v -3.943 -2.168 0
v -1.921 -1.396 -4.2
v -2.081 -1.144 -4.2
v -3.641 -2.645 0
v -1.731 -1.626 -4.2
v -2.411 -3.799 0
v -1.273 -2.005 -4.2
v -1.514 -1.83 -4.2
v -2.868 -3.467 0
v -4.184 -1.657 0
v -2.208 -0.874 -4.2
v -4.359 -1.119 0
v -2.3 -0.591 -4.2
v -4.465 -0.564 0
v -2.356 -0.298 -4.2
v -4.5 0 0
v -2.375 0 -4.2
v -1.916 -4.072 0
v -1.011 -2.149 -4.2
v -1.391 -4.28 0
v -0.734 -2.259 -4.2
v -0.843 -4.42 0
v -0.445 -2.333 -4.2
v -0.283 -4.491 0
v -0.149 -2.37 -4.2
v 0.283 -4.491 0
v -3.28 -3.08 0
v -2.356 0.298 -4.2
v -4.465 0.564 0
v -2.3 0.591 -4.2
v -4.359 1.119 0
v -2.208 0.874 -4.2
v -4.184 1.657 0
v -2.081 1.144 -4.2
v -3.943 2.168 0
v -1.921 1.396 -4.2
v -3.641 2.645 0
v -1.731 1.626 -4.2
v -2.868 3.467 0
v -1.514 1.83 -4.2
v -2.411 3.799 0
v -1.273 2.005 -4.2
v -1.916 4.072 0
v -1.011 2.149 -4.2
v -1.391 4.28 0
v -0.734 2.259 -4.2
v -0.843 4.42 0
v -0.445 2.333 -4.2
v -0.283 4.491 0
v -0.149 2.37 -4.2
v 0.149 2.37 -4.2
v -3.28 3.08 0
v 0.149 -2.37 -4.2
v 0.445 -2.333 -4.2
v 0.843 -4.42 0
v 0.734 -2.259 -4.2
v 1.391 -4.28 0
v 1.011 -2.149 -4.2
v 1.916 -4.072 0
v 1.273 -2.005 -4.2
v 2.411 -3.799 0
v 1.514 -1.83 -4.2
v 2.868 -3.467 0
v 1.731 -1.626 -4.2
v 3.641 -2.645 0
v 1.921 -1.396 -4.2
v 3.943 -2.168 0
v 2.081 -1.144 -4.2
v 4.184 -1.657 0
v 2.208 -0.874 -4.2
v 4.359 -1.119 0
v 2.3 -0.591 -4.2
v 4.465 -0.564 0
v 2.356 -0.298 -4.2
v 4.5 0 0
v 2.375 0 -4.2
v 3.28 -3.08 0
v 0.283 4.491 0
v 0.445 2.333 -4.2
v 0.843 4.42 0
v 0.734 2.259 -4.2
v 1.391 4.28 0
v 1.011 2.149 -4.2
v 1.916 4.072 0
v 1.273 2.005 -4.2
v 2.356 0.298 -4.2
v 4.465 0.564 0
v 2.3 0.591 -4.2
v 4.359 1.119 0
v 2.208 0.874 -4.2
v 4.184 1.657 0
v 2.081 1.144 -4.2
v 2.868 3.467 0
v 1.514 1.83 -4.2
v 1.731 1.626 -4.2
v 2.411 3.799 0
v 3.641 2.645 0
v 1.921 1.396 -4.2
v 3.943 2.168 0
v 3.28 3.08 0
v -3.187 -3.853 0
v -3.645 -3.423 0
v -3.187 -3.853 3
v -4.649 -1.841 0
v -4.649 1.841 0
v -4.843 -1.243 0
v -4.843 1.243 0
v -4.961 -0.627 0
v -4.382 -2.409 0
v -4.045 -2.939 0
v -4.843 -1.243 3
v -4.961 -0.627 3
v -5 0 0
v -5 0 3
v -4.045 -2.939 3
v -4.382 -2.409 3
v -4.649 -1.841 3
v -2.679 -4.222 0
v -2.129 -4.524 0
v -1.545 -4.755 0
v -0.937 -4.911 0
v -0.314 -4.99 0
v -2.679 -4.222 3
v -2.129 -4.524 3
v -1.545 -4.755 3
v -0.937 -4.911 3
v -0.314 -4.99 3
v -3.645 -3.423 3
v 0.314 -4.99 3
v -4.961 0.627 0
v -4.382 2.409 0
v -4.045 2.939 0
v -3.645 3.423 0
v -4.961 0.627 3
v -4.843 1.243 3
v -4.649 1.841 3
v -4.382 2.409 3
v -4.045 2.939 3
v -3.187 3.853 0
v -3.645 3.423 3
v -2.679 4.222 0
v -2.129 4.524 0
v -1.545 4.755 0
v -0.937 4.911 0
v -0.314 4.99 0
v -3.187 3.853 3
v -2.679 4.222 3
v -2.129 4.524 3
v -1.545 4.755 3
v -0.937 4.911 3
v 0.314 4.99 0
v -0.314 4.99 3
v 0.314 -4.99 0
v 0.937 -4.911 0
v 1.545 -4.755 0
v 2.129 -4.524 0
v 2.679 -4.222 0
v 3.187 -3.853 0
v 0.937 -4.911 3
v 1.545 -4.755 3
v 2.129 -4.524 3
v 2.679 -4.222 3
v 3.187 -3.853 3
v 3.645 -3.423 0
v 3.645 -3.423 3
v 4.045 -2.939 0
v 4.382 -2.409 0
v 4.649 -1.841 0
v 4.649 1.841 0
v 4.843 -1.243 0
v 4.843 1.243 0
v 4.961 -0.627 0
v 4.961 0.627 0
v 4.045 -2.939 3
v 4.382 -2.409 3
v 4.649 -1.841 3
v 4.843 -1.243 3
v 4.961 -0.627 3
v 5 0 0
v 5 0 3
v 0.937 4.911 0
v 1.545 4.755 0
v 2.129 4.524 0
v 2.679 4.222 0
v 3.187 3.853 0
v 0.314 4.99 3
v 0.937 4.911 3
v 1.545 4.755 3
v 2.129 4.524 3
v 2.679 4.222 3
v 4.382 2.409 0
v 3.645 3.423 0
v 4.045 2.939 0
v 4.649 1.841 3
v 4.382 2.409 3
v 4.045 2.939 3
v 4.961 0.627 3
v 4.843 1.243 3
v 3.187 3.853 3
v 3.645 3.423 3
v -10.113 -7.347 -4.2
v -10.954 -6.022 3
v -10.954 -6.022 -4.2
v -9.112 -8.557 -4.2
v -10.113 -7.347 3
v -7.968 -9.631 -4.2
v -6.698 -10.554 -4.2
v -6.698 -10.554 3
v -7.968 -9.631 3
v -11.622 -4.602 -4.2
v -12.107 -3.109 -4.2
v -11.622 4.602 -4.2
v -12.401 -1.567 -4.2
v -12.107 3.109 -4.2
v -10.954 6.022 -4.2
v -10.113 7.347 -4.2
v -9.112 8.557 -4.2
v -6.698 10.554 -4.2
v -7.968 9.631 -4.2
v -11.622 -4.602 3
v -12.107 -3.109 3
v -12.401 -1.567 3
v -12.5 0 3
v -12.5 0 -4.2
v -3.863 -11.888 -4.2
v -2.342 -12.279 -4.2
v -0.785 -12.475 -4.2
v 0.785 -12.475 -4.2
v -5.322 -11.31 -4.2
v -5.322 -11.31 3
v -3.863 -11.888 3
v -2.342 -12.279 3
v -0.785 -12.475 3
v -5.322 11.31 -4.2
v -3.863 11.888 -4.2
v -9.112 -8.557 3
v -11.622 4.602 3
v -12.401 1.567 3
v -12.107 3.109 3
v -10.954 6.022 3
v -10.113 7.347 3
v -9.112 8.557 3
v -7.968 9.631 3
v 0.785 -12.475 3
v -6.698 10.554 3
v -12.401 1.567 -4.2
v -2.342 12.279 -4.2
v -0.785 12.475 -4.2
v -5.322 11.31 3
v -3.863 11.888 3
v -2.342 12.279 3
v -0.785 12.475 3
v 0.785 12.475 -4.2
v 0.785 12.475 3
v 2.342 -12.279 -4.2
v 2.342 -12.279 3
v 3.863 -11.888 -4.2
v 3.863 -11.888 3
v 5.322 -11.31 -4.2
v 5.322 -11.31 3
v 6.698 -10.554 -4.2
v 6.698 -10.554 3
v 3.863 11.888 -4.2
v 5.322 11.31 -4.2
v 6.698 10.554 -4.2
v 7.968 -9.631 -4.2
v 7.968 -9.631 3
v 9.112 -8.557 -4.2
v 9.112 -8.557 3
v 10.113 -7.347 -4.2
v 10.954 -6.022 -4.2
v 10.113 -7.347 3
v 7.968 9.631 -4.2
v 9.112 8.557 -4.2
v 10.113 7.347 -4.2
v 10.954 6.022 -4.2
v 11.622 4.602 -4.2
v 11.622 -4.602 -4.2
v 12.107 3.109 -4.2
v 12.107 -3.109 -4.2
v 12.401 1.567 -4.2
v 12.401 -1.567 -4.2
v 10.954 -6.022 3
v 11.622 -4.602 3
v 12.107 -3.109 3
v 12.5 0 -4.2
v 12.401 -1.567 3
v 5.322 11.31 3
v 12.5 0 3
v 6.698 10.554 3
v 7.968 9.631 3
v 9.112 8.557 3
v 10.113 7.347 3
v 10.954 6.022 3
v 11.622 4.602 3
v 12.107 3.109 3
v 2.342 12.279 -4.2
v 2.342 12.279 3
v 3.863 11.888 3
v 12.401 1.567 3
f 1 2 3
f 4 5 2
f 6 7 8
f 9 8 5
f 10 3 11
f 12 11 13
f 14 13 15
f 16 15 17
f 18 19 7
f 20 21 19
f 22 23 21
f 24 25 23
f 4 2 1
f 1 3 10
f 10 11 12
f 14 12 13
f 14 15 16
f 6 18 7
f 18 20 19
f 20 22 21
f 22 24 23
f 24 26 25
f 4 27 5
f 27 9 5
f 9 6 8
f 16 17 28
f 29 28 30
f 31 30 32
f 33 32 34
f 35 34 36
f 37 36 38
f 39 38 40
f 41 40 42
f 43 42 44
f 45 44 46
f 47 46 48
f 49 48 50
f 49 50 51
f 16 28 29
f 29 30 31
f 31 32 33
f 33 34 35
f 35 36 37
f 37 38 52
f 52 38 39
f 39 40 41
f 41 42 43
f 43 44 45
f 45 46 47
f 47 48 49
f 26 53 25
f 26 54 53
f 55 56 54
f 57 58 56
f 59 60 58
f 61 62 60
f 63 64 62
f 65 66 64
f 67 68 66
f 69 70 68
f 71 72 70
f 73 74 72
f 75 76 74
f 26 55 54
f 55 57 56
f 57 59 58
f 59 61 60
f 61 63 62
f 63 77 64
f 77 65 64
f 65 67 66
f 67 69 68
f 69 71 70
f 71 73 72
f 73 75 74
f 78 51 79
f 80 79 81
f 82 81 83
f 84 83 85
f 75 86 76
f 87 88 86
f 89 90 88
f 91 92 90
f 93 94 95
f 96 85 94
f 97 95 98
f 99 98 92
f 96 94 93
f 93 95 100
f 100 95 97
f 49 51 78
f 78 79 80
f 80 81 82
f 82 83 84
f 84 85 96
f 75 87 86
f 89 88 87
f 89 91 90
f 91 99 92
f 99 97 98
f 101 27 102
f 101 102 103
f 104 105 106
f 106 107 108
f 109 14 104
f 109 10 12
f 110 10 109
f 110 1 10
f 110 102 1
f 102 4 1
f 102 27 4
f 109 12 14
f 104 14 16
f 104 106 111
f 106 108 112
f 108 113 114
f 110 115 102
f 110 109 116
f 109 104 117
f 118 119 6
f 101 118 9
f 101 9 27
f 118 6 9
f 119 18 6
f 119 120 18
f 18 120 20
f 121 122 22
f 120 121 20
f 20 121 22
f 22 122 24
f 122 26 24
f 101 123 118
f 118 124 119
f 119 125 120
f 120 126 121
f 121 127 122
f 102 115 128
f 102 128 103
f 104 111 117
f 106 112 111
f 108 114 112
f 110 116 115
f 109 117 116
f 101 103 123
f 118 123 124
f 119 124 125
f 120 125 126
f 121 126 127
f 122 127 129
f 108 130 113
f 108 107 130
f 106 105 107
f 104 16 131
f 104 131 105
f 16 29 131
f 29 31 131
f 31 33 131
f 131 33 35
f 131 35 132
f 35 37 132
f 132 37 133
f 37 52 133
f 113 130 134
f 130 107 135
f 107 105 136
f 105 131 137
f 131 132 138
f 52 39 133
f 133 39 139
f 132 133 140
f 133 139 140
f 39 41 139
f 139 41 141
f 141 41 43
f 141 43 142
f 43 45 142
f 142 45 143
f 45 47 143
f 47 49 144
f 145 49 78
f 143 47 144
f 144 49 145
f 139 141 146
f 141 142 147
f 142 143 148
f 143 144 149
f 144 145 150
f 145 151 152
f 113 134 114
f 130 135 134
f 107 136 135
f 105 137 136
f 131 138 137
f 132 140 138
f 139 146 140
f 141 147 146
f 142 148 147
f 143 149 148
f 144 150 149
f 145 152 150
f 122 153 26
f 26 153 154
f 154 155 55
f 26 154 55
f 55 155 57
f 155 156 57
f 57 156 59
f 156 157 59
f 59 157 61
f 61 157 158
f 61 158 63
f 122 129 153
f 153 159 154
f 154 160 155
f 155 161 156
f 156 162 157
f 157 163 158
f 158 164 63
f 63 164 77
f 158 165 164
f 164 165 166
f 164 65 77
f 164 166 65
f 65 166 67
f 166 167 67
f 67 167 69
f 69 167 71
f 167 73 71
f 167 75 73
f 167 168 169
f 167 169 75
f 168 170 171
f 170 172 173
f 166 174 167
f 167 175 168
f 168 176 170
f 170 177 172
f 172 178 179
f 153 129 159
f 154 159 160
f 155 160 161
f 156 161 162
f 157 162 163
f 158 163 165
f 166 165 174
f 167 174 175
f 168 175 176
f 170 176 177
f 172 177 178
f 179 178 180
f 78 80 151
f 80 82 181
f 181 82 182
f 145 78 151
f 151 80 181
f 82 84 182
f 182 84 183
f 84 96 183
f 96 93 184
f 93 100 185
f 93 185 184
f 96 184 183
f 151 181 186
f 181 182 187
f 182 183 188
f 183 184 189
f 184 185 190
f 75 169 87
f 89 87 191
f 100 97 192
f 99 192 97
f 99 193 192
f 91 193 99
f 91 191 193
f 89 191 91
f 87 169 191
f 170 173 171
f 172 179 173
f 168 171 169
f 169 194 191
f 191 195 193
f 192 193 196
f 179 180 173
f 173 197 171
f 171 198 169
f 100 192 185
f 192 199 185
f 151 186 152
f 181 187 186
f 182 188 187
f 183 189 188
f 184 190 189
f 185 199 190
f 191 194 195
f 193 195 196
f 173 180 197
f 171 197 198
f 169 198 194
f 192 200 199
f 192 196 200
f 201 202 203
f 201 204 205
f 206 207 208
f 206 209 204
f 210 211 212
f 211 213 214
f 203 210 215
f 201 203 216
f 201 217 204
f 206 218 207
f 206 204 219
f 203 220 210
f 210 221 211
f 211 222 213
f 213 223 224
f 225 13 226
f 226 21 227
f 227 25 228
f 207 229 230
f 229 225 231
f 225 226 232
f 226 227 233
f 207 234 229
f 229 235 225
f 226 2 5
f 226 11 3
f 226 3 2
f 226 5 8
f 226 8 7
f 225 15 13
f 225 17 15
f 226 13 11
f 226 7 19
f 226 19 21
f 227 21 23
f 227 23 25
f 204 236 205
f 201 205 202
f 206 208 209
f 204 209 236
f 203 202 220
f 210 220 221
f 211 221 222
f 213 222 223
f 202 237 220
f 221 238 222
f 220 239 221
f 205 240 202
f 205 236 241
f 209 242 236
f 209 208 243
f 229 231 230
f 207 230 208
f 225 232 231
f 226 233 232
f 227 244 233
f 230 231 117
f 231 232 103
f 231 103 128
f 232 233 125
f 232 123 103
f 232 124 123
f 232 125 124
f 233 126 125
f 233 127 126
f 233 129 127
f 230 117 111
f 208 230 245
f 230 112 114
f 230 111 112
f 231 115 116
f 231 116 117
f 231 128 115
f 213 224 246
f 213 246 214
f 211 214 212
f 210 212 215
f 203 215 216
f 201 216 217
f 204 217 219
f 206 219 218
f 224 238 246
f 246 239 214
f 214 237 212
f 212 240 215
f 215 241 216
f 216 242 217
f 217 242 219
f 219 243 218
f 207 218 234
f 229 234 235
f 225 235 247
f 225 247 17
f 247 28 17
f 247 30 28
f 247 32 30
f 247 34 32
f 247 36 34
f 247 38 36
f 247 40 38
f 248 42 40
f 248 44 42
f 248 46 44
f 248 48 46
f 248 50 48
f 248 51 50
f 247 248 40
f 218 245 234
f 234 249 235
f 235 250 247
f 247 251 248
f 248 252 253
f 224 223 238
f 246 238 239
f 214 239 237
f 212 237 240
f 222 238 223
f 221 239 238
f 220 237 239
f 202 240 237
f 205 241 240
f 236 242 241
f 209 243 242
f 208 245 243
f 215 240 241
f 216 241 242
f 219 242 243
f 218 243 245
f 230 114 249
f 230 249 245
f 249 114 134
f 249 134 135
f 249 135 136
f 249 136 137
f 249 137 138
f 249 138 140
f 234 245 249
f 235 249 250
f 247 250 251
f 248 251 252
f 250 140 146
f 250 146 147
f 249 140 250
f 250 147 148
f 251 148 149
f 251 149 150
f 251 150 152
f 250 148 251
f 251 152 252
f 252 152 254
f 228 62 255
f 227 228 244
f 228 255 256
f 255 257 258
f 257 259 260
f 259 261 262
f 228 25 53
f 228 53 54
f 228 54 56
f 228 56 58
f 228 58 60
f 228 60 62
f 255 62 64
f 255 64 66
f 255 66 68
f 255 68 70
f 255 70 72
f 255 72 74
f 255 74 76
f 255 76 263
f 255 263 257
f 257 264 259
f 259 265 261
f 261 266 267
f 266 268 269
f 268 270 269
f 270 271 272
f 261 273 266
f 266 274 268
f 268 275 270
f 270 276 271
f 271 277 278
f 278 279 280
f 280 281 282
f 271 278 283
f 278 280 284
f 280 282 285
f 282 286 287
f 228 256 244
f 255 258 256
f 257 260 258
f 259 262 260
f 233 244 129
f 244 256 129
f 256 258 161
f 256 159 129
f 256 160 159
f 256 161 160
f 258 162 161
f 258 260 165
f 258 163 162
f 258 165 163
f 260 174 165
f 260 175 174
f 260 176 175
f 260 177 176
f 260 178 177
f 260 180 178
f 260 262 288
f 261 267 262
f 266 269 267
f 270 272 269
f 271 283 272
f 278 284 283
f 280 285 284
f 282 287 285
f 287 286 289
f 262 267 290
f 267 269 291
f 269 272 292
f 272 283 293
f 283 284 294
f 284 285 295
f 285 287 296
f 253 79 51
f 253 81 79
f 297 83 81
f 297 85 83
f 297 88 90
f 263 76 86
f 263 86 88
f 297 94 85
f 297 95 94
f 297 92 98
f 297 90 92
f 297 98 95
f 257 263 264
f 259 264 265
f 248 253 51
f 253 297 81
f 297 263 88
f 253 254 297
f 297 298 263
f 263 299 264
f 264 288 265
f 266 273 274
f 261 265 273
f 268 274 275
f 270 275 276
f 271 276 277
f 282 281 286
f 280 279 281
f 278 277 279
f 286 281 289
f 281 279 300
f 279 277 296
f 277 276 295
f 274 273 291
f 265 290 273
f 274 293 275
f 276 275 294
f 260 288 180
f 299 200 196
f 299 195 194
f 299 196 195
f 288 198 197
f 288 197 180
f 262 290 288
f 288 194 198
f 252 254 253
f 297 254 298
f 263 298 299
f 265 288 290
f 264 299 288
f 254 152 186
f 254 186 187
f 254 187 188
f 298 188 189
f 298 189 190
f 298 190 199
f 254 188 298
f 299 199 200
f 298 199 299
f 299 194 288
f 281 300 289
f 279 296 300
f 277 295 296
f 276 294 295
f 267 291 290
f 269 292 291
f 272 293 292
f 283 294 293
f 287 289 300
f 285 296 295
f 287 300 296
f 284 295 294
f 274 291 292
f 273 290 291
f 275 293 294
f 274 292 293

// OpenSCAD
$fn = 50;

difference() {
	union() {
		translate(v = [0, 0, -4.2]) {
			cylinder(h = 7.2, r = 12.5);
		}
	}
	union() {
		translate(v = [0, 0, 0]) {
			rotate(a = [0, 0, 0]) {
				difference() {
					union() {
						translate(v = [0, 0, -7.2]) {
							cylinder(h = 7.2, r = 2.25);
						}
						translate(v = [0, 0, -4.2]) {
							cylinder(h = 4.2, r1 = 2.375, r2 = 4.5);
						}
						translate(v = [0, 0, -7.2]) {
							cylinder(h = 7.2, r = 2.375);
						}
						translate(v = [0, 0, -7.2]) {
							cylinder(h = 7.2, r = 2.25);
						}
					}
					union();
				}
			}
		}
		#cylinder(h = 3, r = 5.0);
	}
}
